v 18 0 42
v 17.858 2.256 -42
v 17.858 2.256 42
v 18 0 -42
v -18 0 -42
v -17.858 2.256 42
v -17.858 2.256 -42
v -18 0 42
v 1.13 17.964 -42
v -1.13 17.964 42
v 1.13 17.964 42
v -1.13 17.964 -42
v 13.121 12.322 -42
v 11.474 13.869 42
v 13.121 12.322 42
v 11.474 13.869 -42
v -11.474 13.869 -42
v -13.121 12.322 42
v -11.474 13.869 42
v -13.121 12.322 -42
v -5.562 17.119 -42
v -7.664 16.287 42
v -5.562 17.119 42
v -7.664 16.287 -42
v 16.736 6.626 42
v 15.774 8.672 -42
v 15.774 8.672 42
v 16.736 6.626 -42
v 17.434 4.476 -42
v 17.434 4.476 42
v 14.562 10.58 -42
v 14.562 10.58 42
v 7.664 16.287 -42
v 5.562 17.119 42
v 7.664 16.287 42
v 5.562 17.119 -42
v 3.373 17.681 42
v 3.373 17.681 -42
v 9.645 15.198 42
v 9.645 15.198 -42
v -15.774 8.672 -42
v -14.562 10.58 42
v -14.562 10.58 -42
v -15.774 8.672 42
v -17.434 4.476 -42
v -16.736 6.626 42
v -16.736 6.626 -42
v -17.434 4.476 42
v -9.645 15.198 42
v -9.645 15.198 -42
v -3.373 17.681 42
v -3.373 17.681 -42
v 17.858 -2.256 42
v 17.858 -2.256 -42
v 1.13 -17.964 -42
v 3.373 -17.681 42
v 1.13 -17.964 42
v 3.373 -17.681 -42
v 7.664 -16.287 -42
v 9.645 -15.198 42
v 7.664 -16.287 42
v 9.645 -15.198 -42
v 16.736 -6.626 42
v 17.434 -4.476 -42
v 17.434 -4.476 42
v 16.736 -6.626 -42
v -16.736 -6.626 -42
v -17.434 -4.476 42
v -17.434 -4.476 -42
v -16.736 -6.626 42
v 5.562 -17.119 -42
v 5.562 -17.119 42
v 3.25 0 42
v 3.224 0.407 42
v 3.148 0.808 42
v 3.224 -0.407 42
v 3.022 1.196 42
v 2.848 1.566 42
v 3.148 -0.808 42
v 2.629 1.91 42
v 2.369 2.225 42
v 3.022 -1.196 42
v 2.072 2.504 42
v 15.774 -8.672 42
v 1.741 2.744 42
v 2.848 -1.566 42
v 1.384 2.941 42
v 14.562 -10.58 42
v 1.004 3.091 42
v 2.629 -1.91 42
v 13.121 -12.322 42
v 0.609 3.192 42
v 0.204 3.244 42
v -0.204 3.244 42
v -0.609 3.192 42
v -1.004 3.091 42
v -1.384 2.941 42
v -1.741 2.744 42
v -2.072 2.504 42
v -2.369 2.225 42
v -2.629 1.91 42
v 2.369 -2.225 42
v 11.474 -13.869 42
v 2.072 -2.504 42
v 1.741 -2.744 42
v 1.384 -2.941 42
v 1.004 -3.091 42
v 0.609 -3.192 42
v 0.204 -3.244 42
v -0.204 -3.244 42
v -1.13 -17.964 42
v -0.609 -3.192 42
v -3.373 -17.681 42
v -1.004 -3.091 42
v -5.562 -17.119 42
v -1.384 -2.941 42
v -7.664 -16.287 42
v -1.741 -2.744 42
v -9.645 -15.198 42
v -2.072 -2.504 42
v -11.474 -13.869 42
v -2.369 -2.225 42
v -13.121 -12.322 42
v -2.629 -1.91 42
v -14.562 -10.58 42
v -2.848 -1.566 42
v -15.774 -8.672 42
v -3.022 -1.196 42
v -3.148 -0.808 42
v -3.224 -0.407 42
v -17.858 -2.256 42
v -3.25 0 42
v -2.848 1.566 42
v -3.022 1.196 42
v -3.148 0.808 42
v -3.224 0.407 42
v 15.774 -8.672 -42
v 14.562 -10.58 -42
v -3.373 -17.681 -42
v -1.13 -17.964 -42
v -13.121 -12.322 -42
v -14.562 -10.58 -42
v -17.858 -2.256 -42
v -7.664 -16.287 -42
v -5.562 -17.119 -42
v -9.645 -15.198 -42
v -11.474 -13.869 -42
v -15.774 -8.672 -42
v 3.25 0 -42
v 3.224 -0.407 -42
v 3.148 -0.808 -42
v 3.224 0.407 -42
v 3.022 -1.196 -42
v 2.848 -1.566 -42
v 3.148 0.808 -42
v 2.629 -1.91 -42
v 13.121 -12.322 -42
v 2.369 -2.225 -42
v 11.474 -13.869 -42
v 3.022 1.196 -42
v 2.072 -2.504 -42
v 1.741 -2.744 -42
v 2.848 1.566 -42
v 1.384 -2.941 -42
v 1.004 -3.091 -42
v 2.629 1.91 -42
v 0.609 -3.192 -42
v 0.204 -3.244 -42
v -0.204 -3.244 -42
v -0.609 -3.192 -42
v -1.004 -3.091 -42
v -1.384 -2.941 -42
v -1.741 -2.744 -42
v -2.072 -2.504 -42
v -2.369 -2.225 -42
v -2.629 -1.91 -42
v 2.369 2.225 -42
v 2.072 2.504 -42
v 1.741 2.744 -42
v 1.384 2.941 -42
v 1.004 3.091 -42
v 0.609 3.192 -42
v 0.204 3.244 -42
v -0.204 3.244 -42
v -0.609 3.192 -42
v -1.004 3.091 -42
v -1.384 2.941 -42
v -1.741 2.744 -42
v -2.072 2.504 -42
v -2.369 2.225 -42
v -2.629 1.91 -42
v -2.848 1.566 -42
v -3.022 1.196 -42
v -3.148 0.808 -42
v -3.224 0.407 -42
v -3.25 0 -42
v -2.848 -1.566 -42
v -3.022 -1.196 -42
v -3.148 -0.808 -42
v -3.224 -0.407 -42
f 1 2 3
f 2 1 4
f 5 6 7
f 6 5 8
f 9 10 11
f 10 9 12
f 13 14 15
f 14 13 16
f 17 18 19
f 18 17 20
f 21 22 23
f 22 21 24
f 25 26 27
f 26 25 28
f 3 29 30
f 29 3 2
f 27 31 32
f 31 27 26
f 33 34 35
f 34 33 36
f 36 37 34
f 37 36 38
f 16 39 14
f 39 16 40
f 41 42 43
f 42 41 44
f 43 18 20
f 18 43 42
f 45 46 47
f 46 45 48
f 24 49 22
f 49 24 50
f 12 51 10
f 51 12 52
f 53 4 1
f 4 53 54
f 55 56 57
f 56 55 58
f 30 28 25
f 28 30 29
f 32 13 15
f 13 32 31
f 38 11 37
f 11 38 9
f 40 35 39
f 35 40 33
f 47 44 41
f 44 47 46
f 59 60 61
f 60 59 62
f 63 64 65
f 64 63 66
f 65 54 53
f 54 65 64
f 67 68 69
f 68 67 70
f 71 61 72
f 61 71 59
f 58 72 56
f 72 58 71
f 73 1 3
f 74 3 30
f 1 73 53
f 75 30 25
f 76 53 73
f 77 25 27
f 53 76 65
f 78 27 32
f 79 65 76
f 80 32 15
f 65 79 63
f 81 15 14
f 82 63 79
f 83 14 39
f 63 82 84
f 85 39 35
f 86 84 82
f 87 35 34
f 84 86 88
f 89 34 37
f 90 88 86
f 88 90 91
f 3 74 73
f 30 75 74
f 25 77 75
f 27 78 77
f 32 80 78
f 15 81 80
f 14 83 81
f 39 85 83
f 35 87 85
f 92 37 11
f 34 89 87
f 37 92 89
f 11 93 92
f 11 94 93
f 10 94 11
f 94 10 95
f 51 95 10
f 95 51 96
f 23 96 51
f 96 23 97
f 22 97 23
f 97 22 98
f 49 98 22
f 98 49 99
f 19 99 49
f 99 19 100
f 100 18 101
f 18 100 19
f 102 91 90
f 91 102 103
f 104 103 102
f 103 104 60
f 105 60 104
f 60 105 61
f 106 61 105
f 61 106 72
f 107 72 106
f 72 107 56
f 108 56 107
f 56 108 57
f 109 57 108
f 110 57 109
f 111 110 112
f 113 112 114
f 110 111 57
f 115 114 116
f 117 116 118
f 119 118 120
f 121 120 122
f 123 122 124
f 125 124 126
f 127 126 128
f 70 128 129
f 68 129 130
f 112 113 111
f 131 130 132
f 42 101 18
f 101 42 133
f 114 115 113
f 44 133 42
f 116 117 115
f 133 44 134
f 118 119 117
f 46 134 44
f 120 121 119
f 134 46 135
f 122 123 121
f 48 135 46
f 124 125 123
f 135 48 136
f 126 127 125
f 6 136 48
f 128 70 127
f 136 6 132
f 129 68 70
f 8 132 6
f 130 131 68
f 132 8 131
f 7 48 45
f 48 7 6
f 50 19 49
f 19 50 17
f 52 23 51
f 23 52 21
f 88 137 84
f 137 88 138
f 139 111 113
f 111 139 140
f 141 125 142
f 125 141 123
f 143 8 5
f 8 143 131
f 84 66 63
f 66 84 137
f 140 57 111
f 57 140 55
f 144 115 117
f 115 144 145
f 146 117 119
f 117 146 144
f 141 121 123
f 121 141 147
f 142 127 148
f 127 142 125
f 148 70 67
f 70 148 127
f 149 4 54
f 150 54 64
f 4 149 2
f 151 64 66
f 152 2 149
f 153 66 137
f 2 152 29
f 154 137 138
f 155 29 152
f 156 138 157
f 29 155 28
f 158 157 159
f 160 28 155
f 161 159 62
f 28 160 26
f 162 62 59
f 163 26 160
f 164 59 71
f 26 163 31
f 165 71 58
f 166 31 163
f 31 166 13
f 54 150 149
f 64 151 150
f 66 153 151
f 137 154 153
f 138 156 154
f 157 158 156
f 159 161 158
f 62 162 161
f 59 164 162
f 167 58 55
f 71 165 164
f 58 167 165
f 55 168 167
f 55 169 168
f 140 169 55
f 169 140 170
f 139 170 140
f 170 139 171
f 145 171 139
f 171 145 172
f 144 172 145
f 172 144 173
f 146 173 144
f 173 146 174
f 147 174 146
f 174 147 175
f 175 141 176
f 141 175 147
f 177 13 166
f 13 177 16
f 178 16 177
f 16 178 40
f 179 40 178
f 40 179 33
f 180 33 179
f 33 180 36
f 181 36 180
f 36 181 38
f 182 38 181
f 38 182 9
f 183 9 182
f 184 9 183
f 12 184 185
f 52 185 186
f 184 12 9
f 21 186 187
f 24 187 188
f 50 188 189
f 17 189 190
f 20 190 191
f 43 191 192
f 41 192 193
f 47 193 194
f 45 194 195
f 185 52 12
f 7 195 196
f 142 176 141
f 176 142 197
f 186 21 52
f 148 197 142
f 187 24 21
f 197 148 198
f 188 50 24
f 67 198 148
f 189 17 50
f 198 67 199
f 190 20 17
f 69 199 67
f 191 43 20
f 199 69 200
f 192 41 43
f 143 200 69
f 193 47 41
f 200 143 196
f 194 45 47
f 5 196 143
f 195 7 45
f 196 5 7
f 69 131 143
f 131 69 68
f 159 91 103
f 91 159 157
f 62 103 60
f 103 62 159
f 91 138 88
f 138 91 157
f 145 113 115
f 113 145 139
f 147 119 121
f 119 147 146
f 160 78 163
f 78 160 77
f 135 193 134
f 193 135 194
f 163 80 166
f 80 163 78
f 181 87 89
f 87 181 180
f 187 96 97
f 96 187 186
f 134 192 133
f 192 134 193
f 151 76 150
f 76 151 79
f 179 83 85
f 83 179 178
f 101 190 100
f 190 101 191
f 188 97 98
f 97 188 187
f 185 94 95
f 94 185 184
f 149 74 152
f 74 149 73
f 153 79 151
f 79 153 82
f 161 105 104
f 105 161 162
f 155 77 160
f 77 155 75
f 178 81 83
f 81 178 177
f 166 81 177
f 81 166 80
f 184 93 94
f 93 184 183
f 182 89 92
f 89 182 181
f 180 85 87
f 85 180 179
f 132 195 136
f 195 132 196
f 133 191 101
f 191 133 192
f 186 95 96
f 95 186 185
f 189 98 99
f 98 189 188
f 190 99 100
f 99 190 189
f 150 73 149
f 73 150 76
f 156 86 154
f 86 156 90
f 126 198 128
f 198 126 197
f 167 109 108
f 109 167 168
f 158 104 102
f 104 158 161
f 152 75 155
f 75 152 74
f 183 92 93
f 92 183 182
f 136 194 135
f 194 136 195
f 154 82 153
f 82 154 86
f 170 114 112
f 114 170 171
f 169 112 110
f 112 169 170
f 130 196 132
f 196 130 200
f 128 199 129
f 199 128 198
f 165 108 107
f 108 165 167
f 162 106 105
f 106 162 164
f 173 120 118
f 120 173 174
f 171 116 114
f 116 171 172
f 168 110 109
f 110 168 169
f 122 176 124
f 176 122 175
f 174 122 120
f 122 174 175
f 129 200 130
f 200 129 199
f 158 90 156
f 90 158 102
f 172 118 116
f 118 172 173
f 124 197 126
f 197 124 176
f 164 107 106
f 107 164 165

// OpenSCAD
$fn = 50;


difference() {
	union() {
		translate(v = [0, 0, -42.0000000000]) {
			cylinder(h = 84, r = 18.0000000000);
		}
	}
	union() {
		translate(v = [0, 0, -100.0000000000]) {
			cylinder(h = 200, r = 3.2500000000);
		}
	}
}
